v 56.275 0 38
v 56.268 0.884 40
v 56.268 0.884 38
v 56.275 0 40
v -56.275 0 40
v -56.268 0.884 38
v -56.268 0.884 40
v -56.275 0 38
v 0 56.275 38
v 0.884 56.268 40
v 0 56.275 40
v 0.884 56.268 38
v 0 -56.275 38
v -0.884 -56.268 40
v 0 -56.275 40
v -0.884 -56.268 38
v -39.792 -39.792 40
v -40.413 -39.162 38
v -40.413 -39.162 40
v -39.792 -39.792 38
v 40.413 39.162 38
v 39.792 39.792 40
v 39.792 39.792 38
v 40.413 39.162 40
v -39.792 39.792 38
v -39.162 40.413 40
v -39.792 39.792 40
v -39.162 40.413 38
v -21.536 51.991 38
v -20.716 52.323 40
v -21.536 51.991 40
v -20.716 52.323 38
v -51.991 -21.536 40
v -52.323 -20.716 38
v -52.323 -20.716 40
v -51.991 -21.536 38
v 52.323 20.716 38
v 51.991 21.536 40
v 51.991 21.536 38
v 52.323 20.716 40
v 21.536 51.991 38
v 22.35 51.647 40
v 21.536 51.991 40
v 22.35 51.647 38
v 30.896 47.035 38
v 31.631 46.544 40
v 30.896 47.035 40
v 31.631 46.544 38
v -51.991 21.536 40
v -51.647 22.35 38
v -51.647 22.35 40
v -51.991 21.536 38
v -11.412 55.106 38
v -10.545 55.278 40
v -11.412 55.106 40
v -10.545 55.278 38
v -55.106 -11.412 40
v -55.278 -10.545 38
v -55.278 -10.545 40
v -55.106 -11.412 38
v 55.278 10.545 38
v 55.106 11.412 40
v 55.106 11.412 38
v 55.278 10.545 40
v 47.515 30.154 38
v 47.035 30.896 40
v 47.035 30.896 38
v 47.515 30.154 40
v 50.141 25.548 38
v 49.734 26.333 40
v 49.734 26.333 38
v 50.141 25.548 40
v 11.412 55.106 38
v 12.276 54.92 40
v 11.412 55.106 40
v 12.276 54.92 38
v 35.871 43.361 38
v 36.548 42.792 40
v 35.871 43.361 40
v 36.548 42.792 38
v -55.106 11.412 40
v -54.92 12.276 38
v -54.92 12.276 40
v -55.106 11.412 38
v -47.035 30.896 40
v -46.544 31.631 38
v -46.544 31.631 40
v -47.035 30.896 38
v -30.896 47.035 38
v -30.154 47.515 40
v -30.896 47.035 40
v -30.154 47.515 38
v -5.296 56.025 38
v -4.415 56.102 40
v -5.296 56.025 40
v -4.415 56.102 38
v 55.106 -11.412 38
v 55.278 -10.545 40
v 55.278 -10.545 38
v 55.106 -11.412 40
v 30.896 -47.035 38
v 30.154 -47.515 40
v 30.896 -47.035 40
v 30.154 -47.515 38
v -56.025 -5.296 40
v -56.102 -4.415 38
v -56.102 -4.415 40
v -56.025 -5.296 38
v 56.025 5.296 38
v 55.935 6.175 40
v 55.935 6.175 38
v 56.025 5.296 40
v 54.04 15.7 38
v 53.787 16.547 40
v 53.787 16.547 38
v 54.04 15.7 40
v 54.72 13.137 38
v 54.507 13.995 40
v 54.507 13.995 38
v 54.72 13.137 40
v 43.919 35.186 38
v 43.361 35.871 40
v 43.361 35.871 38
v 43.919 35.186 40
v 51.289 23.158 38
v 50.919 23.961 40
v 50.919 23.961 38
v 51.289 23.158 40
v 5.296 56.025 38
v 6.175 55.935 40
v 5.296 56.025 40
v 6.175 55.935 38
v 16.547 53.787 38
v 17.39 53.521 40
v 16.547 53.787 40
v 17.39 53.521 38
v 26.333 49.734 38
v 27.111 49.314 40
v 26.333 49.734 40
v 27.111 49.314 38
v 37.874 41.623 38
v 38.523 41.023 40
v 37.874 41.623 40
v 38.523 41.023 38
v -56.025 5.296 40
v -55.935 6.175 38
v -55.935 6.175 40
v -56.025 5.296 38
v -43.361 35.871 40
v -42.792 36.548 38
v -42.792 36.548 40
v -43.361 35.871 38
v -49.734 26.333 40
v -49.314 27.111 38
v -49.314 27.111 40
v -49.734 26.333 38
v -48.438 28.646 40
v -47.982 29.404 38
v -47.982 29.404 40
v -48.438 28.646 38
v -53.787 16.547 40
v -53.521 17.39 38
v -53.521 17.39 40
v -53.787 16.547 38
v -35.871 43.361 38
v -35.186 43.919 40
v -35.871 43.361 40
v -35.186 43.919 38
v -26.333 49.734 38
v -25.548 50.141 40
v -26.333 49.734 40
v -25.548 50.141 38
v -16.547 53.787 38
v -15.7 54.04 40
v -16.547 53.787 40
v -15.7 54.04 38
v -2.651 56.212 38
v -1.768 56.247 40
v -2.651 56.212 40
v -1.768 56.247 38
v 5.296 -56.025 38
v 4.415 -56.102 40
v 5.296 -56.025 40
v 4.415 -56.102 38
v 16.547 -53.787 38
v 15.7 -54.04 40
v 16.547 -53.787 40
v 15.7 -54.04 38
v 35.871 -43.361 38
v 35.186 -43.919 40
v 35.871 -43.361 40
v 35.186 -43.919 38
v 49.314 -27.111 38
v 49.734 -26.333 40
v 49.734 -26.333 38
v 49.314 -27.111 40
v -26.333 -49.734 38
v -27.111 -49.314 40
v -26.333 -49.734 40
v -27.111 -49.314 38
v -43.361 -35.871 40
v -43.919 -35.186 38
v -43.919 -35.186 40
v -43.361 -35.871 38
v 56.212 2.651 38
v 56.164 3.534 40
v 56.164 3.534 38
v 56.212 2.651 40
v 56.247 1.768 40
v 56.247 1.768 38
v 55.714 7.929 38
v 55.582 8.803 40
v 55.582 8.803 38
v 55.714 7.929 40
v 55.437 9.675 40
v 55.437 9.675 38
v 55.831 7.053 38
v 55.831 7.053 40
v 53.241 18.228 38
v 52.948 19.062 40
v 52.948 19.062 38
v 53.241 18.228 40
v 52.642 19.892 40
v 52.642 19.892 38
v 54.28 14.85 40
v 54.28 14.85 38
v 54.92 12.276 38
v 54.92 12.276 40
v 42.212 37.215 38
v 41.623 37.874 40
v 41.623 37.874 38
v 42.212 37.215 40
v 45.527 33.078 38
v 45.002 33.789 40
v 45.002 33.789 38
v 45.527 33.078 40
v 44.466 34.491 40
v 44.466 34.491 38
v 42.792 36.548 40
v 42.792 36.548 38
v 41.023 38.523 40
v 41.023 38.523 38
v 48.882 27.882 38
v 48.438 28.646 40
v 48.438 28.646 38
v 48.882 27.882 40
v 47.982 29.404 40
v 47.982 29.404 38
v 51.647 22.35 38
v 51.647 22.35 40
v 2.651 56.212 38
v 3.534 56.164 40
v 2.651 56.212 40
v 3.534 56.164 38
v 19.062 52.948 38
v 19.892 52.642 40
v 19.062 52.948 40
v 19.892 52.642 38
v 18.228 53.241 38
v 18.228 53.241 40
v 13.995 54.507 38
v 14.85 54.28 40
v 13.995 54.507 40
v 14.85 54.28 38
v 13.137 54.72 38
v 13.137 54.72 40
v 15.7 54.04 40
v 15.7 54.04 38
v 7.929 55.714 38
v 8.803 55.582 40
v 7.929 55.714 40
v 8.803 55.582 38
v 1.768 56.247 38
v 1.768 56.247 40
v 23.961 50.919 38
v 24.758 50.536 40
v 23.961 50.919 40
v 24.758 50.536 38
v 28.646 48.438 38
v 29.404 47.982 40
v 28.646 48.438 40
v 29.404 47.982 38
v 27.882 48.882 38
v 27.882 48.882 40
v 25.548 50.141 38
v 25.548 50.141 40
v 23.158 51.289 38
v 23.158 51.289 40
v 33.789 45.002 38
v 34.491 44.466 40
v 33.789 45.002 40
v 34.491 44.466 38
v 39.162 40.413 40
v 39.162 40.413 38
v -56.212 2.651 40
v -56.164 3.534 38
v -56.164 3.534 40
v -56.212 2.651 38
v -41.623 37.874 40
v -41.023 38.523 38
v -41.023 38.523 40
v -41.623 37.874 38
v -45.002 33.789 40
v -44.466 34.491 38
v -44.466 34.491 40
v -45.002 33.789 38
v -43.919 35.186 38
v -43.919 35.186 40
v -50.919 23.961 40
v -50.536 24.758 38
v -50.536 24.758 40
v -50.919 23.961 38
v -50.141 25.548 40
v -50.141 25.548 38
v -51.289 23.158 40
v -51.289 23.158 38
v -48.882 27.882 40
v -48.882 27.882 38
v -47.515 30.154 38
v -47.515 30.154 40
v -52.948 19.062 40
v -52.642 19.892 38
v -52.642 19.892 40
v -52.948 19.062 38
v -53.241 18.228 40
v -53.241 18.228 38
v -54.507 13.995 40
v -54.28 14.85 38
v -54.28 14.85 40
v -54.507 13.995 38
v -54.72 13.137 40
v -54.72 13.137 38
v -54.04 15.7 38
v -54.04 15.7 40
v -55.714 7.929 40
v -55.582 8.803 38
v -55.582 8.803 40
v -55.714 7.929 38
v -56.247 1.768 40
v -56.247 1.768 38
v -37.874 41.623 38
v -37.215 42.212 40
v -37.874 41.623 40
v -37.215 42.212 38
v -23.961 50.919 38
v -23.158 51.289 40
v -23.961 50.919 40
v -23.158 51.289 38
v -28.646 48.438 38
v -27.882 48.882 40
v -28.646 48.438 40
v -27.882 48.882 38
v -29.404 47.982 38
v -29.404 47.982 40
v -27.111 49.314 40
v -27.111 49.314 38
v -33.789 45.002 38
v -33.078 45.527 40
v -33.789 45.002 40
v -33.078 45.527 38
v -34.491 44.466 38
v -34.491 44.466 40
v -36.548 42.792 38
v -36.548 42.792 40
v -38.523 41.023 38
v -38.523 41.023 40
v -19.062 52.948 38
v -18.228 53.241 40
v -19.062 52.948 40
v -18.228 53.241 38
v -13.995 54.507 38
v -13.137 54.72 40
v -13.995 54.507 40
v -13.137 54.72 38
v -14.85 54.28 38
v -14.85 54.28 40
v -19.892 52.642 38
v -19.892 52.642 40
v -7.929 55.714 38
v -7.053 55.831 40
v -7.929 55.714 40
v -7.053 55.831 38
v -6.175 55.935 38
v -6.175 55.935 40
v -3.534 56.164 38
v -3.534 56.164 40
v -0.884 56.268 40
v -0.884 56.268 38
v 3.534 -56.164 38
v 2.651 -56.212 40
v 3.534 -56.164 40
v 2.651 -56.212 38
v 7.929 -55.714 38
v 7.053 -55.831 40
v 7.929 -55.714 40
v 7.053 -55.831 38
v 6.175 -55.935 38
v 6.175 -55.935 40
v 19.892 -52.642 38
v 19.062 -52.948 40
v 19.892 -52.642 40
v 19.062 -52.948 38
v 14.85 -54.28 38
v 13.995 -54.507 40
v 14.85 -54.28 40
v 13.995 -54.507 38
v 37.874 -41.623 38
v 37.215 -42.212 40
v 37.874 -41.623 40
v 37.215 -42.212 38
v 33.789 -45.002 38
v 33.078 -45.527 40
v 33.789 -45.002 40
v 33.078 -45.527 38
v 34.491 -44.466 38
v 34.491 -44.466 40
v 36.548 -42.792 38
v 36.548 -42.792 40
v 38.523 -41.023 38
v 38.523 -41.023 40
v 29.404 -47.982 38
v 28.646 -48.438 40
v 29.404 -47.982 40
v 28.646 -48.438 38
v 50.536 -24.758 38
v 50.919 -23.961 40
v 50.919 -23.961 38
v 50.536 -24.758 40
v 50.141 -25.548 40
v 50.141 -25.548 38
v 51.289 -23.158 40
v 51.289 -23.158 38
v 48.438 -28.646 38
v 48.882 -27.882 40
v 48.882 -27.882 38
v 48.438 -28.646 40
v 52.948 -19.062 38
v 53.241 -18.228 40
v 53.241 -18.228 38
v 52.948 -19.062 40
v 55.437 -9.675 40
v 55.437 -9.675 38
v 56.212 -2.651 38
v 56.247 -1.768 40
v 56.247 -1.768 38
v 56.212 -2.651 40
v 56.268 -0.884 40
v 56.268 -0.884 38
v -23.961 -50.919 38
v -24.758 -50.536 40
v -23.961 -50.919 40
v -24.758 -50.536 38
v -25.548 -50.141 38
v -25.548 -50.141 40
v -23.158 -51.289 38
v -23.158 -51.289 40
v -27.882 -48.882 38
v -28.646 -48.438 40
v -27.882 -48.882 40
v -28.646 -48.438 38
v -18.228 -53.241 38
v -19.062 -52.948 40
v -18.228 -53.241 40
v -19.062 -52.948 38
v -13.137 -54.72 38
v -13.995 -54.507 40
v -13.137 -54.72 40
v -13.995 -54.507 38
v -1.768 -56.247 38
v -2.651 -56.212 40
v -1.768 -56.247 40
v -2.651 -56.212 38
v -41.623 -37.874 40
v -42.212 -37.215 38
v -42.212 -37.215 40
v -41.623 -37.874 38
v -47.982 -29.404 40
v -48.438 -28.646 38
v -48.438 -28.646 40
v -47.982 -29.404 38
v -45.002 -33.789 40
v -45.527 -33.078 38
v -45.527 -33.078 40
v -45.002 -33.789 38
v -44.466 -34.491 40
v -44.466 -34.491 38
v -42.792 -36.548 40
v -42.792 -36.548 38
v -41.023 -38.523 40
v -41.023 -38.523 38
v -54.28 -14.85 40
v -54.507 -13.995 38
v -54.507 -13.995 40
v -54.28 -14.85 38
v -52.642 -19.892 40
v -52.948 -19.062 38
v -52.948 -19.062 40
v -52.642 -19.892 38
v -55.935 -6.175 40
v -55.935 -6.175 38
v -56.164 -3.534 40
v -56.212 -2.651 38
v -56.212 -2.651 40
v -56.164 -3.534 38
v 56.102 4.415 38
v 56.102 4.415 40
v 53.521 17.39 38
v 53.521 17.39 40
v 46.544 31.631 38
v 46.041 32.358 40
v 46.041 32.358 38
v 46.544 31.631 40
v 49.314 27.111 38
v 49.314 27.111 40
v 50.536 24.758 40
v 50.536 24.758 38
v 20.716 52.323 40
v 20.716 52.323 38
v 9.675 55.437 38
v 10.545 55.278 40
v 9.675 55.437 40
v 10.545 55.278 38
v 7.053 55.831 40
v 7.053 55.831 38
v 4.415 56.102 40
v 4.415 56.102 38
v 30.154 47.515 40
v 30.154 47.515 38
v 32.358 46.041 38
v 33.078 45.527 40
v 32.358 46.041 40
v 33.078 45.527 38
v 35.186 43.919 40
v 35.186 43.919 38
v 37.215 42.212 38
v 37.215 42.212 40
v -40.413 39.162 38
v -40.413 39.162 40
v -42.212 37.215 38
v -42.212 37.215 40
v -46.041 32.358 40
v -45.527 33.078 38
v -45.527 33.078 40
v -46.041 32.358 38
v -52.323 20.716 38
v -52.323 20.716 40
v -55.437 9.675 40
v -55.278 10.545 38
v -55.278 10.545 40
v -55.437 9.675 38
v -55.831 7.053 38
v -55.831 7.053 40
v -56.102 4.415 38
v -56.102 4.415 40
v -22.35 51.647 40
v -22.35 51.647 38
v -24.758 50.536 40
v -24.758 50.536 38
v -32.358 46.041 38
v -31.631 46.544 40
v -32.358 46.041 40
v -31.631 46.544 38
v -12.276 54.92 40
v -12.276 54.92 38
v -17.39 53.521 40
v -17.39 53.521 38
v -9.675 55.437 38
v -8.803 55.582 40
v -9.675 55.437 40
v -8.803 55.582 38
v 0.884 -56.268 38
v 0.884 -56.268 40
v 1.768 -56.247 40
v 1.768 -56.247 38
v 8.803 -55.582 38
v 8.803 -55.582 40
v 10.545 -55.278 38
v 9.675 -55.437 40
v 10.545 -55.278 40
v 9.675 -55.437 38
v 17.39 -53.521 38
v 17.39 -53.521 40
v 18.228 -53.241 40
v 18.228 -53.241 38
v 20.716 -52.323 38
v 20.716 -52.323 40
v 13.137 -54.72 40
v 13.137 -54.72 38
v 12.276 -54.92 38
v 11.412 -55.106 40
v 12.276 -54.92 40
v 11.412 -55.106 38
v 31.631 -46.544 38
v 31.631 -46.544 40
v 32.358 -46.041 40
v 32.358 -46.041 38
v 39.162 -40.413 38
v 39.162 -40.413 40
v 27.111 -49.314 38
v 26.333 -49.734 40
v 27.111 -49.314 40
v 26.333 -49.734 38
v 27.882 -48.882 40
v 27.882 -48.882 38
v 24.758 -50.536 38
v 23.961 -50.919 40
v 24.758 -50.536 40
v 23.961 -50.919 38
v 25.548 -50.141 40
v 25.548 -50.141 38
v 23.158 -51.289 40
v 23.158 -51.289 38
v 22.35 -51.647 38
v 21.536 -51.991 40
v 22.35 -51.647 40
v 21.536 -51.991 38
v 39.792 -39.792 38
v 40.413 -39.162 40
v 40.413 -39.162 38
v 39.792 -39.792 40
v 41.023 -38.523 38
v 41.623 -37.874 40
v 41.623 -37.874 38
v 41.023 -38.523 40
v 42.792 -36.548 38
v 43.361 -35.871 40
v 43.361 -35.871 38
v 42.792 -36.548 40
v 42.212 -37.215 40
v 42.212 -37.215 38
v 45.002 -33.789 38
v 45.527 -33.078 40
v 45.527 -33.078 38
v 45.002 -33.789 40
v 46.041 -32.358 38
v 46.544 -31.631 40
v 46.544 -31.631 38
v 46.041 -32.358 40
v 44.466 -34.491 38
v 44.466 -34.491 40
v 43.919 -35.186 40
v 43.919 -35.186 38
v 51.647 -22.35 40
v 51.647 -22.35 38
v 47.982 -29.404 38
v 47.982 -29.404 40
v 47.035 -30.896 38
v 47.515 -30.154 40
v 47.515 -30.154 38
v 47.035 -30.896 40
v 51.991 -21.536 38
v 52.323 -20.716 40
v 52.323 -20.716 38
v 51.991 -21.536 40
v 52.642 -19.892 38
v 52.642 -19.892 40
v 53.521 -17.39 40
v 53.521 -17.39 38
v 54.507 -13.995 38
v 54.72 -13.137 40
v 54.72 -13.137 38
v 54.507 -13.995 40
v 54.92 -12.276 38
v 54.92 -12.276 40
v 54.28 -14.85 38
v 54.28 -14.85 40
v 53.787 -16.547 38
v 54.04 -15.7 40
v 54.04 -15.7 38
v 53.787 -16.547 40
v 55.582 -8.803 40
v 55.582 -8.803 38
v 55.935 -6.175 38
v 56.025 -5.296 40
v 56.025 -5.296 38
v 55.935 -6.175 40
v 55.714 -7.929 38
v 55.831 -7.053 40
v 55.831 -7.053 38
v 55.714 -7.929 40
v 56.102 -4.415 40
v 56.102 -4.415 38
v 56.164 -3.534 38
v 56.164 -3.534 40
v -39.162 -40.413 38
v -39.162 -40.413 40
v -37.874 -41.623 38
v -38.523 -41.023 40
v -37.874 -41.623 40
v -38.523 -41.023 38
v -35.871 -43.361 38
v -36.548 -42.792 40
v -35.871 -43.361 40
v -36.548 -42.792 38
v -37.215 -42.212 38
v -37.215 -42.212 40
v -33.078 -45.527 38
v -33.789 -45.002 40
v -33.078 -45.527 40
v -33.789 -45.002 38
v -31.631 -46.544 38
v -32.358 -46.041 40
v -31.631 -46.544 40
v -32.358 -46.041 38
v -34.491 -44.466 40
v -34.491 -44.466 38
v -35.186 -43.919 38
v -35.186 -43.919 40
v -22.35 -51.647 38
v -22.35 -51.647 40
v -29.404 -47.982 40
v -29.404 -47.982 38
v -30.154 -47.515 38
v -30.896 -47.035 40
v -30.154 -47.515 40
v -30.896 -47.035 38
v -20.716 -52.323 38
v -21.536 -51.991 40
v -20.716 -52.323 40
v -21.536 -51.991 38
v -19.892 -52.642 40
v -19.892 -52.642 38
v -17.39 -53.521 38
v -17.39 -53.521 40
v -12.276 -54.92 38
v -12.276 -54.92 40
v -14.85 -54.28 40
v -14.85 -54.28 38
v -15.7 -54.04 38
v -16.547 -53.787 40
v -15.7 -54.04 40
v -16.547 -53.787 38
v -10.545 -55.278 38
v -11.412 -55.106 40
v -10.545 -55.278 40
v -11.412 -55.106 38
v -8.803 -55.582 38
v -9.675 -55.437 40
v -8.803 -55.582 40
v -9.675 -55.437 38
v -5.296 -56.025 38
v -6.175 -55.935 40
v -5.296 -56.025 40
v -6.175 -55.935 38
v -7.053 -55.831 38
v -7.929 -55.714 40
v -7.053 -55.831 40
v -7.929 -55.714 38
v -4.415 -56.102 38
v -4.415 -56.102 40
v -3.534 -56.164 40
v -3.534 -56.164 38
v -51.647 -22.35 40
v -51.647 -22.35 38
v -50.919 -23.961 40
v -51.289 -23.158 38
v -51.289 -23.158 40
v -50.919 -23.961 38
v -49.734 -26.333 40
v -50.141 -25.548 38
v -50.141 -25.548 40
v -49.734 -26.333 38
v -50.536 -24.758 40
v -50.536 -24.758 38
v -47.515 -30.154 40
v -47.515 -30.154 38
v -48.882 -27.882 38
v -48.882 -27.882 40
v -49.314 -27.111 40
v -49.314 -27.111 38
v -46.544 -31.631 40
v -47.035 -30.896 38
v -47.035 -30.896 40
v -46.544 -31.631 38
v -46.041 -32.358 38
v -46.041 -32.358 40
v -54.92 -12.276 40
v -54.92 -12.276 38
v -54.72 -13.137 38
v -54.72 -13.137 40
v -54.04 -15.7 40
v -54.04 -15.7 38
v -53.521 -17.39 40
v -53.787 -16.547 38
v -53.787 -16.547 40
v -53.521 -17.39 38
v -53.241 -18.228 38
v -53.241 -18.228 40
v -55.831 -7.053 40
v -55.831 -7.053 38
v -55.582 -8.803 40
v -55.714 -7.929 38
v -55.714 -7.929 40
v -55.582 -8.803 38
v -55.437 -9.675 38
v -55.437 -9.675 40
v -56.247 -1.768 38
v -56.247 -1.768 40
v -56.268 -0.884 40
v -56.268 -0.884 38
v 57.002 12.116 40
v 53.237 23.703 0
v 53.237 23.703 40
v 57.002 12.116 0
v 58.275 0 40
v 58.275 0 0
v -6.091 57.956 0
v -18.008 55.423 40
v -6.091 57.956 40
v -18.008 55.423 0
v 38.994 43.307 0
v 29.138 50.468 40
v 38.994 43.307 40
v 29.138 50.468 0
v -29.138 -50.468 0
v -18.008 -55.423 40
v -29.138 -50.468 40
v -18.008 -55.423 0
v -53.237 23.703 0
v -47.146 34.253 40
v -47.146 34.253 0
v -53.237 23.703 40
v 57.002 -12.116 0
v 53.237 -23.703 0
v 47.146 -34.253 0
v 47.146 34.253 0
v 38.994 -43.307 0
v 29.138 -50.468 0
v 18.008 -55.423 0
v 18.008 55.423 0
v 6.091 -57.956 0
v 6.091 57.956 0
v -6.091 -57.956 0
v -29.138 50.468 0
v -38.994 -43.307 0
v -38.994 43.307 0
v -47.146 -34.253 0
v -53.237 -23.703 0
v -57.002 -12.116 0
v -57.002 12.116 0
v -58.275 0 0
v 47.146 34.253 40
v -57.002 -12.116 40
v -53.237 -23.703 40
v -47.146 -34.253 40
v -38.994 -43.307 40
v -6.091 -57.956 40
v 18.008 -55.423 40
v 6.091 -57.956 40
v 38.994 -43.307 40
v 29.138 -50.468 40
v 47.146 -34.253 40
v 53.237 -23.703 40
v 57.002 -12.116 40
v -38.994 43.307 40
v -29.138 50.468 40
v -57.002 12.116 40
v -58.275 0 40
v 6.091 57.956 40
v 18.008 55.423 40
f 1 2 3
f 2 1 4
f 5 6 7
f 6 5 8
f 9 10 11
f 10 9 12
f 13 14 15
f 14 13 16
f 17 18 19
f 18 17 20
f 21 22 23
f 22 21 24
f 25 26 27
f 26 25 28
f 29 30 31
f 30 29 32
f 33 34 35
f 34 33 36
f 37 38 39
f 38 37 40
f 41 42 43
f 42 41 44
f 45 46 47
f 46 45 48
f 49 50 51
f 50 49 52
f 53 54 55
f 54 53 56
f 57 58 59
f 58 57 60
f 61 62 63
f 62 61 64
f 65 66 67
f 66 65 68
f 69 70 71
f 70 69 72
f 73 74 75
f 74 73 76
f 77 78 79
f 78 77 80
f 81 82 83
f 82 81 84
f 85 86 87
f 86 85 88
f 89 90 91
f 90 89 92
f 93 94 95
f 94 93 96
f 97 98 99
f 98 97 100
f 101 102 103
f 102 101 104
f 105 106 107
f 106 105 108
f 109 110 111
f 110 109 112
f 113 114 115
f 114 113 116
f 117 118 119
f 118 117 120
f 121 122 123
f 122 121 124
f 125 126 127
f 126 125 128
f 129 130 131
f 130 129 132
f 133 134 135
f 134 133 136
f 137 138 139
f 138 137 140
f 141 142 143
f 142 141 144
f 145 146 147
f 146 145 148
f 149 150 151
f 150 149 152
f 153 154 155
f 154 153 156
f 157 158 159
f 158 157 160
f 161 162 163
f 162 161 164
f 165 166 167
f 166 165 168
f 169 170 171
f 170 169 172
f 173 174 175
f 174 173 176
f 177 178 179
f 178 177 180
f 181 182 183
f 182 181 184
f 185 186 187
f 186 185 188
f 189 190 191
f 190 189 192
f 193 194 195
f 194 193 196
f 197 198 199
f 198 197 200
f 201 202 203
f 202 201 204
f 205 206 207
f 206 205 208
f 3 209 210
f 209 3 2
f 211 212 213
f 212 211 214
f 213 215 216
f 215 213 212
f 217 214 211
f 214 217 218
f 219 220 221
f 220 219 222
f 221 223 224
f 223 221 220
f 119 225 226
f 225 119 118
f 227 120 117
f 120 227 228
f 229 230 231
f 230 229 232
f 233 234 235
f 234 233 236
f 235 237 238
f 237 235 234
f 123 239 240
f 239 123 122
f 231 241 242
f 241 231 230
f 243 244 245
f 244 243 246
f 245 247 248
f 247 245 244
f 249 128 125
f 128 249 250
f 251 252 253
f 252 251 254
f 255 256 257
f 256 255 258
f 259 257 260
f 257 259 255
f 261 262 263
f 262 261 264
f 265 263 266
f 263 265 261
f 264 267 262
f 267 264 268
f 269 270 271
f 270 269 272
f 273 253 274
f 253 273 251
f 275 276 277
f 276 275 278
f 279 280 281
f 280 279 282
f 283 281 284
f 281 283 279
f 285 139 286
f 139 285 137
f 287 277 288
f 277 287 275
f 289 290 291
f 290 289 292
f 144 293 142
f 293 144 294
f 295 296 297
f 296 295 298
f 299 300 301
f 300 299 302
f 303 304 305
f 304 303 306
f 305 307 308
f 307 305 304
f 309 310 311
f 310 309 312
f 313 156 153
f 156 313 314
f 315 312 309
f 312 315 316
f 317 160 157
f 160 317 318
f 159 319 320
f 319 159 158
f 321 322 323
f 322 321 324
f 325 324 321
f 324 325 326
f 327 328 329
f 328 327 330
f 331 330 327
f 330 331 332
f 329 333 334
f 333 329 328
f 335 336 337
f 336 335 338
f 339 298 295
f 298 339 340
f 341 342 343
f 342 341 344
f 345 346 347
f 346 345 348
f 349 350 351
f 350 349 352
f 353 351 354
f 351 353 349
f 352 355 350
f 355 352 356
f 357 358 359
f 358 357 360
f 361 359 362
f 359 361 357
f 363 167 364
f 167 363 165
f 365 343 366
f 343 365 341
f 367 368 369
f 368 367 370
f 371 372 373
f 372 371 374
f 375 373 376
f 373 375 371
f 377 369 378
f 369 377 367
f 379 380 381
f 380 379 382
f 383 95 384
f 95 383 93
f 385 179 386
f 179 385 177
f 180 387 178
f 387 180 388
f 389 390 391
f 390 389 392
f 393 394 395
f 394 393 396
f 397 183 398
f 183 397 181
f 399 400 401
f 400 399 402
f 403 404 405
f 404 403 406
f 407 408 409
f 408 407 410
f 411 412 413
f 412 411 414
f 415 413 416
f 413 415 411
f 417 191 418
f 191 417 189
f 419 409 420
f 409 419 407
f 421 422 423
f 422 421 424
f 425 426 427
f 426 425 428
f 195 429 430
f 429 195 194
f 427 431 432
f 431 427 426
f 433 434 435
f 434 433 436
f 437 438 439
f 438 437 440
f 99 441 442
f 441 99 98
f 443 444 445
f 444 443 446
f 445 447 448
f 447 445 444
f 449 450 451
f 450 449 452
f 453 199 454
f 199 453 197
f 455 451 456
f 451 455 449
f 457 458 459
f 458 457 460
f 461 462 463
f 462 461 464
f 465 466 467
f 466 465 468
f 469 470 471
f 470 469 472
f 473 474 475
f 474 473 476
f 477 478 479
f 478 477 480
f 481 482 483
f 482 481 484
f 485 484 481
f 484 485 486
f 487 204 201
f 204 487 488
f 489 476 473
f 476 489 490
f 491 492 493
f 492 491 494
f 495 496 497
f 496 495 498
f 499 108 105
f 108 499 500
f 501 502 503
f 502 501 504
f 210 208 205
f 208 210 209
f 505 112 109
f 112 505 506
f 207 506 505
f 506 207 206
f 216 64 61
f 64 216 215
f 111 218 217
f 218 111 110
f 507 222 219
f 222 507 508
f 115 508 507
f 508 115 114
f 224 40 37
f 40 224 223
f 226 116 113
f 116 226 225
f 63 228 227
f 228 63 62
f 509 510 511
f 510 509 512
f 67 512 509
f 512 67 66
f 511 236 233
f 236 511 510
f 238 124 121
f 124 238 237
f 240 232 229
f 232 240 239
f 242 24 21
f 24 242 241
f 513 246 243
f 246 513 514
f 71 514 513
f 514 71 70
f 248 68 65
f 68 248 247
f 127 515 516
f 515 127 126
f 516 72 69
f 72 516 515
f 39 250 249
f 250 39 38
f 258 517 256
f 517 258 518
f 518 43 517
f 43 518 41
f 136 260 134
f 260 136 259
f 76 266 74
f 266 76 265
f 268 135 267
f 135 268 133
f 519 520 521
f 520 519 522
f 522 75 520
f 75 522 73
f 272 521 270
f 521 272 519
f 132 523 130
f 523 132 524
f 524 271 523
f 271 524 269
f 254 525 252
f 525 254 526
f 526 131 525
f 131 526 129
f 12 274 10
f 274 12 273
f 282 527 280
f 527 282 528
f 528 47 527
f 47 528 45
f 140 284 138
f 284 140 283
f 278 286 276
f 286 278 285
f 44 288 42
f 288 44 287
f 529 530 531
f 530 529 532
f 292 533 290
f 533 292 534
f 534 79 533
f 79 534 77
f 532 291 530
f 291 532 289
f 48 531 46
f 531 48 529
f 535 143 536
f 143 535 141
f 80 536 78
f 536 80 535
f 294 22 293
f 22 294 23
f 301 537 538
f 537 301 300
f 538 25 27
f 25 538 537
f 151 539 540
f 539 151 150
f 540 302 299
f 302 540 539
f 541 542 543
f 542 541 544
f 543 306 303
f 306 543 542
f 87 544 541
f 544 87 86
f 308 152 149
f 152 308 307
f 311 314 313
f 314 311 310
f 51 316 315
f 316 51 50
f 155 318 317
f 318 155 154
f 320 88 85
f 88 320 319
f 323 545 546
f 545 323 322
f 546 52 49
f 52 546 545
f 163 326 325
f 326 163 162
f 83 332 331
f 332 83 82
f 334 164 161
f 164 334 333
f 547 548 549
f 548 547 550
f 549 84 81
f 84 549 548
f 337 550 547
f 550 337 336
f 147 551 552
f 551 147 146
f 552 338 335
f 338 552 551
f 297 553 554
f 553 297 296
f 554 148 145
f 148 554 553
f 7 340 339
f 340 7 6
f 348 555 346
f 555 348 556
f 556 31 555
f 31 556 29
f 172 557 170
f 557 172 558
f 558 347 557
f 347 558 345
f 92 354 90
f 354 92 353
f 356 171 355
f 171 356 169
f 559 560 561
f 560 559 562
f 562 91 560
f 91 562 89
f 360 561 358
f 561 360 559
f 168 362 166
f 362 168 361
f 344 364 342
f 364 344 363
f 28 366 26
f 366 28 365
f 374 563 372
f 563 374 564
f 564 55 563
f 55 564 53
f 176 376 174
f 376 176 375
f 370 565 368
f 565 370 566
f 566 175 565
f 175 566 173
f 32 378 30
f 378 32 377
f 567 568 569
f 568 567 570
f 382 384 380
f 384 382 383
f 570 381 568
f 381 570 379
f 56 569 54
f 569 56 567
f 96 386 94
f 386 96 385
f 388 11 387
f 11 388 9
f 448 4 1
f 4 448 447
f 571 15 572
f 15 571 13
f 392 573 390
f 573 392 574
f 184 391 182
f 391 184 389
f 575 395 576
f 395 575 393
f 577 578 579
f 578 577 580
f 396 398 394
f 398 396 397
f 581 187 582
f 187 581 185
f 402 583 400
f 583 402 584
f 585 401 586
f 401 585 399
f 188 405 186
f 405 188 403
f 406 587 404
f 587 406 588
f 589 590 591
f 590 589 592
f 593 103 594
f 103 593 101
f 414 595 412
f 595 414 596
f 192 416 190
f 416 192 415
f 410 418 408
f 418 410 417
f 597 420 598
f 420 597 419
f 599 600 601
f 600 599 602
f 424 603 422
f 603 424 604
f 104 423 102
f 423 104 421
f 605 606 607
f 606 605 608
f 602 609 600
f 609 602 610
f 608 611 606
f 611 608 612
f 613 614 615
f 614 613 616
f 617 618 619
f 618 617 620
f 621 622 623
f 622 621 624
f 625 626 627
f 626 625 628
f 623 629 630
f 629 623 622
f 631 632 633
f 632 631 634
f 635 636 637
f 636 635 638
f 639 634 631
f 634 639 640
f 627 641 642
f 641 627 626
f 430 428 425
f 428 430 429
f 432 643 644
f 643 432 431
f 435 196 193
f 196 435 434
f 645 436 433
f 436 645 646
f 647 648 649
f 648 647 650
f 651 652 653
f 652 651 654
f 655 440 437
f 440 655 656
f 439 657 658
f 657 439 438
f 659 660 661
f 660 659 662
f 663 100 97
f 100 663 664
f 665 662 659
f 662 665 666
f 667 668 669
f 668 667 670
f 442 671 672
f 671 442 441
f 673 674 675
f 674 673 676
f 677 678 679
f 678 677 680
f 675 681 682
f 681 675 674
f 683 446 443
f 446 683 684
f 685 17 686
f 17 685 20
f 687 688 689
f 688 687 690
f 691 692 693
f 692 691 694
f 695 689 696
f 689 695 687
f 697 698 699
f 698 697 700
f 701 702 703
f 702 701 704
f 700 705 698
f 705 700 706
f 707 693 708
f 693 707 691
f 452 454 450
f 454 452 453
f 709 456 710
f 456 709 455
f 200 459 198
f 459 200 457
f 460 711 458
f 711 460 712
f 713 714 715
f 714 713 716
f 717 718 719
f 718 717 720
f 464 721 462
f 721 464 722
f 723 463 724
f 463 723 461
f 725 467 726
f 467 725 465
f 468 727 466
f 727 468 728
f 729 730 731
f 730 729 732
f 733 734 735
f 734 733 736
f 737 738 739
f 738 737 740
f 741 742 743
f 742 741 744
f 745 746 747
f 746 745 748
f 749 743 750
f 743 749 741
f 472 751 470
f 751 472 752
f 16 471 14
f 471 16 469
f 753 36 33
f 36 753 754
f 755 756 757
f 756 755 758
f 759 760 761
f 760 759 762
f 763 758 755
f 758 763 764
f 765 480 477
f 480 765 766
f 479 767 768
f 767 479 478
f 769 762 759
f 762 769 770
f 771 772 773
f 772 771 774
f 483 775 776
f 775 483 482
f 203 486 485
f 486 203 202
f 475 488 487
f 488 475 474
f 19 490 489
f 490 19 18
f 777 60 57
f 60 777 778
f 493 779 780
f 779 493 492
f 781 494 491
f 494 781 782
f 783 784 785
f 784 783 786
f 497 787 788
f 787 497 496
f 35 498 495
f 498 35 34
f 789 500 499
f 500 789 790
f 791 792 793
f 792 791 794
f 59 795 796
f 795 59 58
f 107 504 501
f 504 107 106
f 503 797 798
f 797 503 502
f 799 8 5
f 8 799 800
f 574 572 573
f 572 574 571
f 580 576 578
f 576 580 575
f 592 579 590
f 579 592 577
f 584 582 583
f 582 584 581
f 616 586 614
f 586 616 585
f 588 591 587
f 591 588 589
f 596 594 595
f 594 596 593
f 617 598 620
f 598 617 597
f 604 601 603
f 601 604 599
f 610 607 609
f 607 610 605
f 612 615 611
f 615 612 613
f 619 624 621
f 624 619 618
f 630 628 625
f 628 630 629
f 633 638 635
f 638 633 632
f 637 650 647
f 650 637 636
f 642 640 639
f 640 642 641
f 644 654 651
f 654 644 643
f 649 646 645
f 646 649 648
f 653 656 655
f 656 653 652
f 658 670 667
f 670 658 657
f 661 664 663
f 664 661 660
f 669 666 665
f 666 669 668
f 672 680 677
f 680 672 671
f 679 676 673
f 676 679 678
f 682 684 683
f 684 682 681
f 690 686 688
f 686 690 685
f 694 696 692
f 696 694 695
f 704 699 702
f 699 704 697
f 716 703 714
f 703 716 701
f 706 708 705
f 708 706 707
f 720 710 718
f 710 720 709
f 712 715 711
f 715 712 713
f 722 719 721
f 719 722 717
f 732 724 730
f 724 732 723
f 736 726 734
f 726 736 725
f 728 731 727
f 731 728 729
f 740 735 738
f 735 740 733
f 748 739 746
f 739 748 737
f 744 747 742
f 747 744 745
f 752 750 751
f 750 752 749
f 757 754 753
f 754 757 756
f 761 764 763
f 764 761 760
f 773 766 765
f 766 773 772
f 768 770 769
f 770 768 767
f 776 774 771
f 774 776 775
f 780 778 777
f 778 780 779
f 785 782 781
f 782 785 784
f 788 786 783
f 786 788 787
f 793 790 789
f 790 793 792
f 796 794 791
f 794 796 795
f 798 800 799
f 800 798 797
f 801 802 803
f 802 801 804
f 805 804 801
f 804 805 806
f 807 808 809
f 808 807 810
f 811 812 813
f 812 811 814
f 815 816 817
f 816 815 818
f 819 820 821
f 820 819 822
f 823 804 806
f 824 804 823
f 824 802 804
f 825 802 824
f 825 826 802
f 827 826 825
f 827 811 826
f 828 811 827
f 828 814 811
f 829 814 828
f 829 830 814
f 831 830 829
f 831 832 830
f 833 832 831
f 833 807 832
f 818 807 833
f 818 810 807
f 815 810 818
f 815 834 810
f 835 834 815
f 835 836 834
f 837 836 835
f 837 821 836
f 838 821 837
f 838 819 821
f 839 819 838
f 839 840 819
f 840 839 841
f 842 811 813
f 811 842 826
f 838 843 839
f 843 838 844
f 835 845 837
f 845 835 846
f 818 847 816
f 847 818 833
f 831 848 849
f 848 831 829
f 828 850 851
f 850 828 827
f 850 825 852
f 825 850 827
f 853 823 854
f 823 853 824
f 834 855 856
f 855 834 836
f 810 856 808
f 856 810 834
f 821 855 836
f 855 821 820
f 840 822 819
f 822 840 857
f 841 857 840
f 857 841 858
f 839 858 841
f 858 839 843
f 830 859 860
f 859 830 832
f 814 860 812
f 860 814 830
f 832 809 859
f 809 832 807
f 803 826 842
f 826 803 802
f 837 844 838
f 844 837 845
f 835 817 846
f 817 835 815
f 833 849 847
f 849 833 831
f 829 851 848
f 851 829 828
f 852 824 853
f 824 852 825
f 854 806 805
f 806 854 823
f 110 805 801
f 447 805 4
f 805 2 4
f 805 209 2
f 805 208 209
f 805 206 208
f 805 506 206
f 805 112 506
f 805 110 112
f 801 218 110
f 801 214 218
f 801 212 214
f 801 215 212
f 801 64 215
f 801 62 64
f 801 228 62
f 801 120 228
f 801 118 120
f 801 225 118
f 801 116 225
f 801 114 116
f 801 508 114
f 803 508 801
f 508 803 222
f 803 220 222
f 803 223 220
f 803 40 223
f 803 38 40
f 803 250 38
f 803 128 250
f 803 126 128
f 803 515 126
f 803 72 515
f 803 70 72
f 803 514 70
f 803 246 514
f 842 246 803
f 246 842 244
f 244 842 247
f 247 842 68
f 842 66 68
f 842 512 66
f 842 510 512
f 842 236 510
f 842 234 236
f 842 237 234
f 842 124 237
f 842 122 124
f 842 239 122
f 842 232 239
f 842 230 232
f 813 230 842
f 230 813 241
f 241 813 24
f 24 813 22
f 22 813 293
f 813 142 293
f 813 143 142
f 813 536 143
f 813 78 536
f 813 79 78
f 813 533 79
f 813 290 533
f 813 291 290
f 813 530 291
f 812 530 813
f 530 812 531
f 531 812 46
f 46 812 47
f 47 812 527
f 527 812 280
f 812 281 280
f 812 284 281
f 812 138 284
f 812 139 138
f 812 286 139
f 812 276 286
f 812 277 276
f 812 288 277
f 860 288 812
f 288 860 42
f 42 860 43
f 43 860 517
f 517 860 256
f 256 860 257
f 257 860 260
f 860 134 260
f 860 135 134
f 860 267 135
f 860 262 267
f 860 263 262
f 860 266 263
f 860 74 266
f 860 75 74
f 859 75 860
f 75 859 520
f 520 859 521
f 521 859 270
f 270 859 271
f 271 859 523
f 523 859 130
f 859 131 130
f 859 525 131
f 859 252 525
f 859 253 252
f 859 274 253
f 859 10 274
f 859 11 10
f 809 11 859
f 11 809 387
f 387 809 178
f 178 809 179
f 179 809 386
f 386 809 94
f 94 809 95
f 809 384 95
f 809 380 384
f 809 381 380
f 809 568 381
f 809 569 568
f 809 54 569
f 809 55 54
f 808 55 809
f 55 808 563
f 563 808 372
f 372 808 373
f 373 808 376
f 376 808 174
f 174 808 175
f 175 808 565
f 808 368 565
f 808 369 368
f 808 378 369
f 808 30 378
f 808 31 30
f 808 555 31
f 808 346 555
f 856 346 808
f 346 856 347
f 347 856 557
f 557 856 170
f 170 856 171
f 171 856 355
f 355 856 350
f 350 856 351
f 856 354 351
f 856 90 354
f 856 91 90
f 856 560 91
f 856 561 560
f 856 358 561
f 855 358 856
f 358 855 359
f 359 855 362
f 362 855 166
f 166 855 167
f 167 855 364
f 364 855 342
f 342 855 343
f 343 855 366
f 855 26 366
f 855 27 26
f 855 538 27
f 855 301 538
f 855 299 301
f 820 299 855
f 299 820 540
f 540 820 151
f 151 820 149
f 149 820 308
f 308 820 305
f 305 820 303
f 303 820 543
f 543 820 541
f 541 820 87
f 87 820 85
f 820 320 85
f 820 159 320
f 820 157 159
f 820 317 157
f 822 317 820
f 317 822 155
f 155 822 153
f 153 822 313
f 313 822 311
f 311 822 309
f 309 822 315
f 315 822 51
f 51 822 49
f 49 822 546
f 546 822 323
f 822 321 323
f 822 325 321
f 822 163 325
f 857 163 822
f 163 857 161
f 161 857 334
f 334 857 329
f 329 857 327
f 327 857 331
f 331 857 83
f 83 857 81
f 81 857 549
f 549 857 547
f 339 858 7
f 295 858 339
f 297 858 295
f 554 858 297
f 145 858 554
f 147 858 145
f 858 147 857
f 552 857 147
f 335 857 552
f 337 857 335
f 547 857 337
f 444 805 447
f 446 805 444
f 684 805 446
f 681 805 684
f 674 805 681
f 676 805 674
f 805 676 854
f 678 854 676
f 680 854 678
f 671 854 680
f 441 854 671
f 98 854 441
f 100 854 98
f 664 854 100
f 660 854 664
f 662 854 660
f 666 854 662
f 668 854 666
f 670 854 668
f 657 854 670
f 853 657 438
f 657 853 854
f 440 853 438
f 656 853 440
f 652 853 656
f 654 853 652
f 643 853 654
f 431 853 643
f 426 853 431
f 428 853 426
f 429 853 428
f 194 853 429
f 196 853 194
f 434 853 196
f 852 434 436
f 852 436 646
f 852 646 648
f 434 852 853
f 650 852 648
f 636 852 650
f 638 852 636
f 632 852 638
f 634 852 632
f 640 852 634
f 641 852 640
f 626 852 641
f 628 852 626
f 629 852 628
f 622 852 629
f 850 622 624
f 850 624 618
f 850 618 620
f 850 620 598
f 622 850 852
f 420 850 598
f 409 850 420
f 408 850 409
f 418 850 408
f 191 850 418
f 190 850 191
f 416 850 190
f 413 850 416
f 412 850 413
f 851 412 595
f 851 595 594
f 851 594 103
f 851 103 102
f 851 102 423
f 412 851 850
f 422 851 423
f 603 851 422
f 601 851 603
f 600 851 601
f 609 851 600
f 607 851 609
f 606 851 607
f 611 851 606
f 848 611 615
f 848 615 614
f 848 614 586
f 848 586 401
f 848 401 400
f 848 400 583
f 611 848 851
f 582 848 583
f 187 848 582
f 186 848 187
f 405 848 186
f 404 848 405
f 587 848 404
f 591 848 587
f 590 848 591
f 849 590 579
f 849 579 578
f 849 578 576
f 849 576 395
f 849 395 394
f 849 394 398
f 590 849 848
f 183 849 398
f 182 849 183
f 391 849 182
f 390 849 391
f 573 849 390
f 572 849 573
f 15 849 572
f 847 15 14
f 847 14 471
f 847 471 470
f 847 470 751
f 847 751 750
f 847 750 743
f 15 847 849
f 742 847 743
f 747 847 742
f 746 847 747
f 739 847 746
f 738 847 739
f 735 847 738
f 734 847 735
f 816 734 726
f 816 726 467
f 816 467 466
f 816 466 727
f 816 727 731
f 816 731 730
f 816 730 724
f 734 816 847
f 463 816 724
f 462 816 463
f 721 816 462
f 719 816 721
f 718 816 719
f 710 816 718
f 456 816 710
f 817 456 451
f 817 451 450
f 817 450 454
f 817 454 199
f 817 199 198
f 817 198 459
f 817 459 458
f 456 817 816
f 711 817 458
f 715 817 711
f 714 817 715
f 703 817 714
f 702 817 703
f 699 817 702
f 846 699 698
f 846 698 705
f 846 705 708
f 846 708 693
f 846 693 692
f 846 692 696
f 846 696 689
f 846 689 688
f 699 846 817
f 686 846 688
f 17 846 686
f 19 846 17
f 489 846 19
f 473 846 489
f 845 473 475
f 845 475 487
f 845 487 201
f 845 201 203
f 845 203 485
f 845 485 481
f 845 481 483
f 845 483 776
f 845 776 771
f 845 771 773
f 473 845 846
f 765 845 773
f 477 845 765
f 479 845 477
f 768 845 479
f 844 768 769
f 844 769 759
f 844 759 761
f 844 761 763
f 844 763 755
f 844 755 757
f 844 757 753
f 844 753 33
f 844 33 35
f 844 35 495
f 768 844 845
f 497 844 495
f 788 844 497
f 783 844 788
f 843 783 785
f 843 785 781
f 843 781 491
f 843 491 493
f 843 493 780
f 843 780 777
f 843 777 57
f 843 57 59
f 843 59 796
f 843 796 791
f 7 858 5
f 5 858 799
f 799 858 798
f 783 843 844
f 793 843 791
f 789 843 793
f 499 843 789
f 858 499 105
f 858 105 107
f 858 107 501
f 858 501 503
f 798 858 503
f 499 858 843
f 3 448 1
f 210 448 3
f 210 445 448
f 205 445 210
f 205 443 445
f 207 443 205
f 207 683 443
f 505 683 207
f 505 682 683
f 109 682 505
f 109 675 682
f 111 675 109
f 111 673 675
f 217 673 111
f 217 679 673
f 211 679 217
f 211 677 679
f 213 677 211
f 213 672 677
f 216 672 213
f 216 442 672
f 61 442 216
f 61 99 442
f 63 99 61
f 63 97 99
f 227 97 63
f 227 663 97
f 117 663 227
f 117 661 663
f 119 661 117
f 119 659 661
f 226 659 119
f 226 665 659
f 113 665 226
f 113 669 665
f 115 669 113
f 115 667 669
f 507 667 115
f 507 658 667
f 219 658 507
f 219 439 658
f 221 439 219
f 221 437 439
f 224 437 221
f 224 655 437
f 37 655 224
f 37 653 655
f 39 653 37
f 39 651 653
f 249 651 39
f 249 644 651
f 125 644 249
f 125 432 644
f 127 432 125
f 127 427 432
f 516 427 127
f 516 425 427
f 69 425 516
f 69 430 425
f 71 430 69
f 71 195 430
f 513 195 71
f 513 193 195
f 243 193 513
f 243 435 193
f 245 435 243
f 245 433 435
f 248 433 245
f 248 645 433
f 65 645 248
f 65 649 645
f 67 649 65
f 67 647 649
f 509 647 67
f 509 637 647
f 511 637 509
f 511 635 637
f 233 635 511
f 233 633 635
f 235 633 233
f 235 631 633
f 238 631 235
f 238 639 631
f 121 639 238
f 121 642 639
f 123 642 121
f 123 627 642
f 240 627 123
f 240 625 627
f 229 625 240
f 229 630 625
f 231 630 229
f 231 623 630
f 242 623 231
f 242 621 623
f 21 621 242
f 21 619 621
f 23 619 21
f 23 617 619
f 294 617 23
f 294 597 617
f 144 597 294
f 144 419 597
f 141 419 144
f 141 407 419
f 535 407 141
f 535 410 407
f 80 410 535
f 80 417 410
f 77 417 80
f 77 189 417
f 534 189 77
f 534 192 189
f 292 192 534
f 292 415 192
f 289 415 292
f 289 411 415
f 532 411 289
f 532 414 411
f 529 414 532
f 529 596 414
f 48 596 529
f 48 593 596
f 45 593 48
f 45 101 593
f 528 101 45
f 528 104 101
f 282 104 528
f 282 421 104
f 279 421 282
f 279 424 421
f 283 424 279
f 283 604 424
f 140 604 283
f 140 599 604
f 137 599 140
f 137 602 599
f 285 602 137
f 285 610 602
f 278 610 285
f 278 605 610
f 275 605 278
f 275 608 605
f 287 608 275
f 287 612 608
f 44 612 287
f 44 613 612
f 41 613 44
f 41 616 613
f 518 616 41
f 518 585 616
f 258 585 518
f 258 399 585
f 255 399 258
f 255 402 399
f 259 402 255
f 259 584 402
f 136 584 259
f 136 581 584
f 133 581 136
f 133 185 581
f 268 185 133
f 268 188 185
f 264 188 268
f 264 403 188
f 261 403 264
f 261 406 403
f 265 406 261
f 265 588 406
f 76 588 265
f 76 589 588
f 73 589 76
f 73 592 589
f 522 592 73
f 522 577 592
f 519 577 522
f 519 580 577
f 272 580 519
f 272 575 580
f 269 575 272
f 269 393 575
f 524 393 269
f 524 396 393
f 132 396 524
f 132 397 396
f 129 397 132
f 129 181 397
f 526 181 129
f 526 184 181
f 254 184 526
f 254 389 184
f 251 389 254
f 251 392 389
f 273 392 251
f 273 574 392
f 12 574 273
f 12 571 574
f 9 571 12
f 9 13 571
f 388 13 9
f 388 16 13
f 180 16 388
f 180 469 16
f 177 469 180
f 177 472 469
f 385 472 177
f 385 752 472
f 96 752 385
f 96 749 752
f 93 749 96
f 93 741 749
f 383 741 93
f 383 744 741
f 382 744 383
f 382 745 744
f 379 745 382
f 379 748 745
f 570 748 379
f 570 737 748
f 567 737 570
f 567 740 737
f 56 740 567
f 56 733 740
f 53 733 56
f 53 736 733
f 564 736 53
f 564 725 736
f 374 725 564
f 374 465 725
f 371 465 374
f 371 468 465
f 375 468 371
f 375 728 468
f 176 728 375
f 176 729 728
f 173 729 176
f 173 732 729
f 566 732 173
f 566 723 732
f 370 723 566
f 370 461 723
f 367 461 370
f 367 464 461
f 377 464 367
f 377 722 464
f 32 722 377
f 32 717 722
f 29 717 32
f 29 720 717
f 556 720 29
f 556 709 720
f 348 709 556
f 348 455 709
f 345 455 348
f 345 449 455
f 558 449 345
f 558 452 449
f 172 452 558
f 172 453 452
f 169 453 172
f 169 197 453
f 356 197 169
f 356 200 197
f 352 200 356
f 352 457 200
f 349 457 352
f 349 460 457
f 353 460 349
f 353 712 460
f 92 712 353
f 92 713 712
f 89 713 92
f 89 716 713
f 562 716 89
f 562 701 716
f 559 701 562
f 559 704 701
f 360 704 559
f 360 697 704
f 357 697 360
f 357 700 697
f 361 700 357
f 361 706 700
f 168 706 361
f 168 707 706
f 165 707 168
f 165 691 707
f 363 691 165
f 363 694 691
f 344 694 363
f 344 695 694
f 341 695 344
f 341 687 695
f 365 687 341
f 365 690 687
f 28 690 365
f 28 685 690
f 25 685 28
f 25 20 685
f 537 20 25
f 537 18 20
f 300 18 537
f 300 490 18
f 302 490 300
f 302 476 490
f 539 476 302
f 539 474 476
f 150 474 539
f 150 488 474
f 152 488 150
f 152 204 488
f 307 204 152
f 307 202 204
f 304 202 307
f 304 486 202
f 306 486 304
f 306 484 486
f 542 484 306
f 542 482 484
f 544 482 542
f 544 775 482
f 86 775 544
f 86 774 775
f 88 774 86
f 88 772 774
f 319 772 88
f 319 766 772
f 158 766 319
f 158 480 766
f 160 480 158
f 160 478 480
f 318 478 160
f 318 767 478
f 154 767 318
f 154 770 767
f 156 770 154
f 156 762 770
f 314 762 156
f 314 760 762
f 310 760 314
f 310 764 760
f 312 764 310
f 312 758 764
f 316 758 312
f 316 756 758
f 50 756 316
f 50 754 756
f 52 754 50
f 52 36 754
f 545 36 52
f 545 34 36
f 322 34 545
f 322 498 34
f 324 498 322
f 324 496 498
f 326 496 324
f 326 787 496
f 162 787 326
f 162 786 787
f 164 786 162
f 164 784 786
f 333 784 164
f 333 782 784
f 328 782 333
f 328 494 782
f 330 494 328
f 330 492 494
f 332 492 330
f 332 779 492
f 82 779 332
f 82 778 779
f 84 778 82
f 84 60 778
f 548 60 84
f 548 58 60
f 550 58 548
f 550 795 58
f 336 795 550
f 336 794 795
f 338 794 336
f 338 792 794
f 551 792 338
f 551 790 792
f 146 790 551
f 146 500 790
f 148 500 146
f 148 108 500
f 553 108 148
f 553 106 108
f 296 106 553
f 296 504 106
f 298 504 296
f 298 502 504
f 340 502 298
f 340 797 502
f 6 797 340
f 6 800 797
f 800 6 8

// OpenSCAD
cylinderFaceApprox = 400;
embeddingDepth = 0.01;

module stopperMould(topR, bottomR, height, wallThickness) {
    translate([0, 0, (height + 2*wallThickness)/2]) {
        difference() {
            linear_extrude(height = height + 2*wallThickness, center = true) {
                circle(r = topR + wallThickness);
            }
            union() {
                translate([0, 0, height/2 + wallThickness/2]) { // Mould walls
                    cylinder(h = wallThickness + 2*embeddingDepth, r1 = topR, r2 = topR, center = true, $fn = cylinderFaceApprox);
                }
                cylinder(h = height, r1 = bottomR, r2 = topR, center = true, $fn = cylinderFaceApprox);
            }
        }
    }
}

module centralPlug(depth, contraction, wallThickness, maxRadius) {
    scale([scale, scale, 1]) {
        difference() {
            translate([0, 0, wallThickness/2 + depth/2 + contraction]) {
                cylinder(depth - 2*contraction, r1 = maxRadius, r2 = maxRadius, center = true, $fn = cylinderFaceApprox);
            }
            //children();
        }
    }
}

module cast(height, baseHeight) {
    difference() {
        translate([0, 0, baseHeight]) {
            linear_extrude(height = height, center = false) {
                scale([0.99, 0.99, 1]) {
                    projection() {
                        children();
                    }
                }
            }
        }
        children();
    }
}

stopperHeight = 36;
stopperBaseD = 102.55;
stopperTopD = 112.55;

mouldWallThickness = 2;

centralContraction = 4;
centralScale = 0.9;

// Inner plug
/*color([0, 0, 1, 0.6]) {
    centralPlug(stopperHeight, centralContraction, mouldWallThickness, stopperTopD/2)
        stopperMould(stopperTopD/2, stopperBaseD/2, stopperHeight, mouldWallThickness);
}*/
/*
// Inner plug mould
color([0, 1, 0, 0.6]) {
    difference() {
        difference() {
            translate([0, 0, mouldWallThickness/2]) {
                cylinder(centralPlugDepth + mouldWallThickness*2, r1 = stopperTopD/2, r2 = stopperTopD/2, center = true, $fn = cylinderFaceApprox);
            }
            union() {
                translate([0, 0, centralPlugDepth/2 + mouldWallThickness]) {
                    linear_extrude(height = mouldWallThickness + 2*embeddingDepth, center = true) {
                        projection() {
                            centralPlug(centralPlugDepth, centralScale, mouldWallThickness, stopperTopD/2)
                                stopperMould(stopperTopD/2, stopperBaseD/2, stopperHeight, mouldWallThickness);
                        }
                    }
                }
                centralPlug(centralPlugDepth, centralScale, mouldWallThickness, stopperTopD/2)
                    stopperMould(stopperTopD/2, stopperBaseD/2, stopperHeight, mouldWallThickness);
            }
        }
        stopperMould(stopperTopD/2, stopperBaseD/2, stopperHeight, mouldWallThickness);
    }
}*/

// Stopper
color([0, 1, 1, 0.6]) {
    cast(stopperHeight, mouldWallThickness)
        stopperMould(stopperTopD/2, stopperBaseD/2, stopperHeight, mouldWallThickness);
}

// Mould
color([1, 0, 0, 0.6]) {
    stopperMould(stopperTopD/2, stopperBaseD/2, stopperHeight, mouldWallThickness);
}
